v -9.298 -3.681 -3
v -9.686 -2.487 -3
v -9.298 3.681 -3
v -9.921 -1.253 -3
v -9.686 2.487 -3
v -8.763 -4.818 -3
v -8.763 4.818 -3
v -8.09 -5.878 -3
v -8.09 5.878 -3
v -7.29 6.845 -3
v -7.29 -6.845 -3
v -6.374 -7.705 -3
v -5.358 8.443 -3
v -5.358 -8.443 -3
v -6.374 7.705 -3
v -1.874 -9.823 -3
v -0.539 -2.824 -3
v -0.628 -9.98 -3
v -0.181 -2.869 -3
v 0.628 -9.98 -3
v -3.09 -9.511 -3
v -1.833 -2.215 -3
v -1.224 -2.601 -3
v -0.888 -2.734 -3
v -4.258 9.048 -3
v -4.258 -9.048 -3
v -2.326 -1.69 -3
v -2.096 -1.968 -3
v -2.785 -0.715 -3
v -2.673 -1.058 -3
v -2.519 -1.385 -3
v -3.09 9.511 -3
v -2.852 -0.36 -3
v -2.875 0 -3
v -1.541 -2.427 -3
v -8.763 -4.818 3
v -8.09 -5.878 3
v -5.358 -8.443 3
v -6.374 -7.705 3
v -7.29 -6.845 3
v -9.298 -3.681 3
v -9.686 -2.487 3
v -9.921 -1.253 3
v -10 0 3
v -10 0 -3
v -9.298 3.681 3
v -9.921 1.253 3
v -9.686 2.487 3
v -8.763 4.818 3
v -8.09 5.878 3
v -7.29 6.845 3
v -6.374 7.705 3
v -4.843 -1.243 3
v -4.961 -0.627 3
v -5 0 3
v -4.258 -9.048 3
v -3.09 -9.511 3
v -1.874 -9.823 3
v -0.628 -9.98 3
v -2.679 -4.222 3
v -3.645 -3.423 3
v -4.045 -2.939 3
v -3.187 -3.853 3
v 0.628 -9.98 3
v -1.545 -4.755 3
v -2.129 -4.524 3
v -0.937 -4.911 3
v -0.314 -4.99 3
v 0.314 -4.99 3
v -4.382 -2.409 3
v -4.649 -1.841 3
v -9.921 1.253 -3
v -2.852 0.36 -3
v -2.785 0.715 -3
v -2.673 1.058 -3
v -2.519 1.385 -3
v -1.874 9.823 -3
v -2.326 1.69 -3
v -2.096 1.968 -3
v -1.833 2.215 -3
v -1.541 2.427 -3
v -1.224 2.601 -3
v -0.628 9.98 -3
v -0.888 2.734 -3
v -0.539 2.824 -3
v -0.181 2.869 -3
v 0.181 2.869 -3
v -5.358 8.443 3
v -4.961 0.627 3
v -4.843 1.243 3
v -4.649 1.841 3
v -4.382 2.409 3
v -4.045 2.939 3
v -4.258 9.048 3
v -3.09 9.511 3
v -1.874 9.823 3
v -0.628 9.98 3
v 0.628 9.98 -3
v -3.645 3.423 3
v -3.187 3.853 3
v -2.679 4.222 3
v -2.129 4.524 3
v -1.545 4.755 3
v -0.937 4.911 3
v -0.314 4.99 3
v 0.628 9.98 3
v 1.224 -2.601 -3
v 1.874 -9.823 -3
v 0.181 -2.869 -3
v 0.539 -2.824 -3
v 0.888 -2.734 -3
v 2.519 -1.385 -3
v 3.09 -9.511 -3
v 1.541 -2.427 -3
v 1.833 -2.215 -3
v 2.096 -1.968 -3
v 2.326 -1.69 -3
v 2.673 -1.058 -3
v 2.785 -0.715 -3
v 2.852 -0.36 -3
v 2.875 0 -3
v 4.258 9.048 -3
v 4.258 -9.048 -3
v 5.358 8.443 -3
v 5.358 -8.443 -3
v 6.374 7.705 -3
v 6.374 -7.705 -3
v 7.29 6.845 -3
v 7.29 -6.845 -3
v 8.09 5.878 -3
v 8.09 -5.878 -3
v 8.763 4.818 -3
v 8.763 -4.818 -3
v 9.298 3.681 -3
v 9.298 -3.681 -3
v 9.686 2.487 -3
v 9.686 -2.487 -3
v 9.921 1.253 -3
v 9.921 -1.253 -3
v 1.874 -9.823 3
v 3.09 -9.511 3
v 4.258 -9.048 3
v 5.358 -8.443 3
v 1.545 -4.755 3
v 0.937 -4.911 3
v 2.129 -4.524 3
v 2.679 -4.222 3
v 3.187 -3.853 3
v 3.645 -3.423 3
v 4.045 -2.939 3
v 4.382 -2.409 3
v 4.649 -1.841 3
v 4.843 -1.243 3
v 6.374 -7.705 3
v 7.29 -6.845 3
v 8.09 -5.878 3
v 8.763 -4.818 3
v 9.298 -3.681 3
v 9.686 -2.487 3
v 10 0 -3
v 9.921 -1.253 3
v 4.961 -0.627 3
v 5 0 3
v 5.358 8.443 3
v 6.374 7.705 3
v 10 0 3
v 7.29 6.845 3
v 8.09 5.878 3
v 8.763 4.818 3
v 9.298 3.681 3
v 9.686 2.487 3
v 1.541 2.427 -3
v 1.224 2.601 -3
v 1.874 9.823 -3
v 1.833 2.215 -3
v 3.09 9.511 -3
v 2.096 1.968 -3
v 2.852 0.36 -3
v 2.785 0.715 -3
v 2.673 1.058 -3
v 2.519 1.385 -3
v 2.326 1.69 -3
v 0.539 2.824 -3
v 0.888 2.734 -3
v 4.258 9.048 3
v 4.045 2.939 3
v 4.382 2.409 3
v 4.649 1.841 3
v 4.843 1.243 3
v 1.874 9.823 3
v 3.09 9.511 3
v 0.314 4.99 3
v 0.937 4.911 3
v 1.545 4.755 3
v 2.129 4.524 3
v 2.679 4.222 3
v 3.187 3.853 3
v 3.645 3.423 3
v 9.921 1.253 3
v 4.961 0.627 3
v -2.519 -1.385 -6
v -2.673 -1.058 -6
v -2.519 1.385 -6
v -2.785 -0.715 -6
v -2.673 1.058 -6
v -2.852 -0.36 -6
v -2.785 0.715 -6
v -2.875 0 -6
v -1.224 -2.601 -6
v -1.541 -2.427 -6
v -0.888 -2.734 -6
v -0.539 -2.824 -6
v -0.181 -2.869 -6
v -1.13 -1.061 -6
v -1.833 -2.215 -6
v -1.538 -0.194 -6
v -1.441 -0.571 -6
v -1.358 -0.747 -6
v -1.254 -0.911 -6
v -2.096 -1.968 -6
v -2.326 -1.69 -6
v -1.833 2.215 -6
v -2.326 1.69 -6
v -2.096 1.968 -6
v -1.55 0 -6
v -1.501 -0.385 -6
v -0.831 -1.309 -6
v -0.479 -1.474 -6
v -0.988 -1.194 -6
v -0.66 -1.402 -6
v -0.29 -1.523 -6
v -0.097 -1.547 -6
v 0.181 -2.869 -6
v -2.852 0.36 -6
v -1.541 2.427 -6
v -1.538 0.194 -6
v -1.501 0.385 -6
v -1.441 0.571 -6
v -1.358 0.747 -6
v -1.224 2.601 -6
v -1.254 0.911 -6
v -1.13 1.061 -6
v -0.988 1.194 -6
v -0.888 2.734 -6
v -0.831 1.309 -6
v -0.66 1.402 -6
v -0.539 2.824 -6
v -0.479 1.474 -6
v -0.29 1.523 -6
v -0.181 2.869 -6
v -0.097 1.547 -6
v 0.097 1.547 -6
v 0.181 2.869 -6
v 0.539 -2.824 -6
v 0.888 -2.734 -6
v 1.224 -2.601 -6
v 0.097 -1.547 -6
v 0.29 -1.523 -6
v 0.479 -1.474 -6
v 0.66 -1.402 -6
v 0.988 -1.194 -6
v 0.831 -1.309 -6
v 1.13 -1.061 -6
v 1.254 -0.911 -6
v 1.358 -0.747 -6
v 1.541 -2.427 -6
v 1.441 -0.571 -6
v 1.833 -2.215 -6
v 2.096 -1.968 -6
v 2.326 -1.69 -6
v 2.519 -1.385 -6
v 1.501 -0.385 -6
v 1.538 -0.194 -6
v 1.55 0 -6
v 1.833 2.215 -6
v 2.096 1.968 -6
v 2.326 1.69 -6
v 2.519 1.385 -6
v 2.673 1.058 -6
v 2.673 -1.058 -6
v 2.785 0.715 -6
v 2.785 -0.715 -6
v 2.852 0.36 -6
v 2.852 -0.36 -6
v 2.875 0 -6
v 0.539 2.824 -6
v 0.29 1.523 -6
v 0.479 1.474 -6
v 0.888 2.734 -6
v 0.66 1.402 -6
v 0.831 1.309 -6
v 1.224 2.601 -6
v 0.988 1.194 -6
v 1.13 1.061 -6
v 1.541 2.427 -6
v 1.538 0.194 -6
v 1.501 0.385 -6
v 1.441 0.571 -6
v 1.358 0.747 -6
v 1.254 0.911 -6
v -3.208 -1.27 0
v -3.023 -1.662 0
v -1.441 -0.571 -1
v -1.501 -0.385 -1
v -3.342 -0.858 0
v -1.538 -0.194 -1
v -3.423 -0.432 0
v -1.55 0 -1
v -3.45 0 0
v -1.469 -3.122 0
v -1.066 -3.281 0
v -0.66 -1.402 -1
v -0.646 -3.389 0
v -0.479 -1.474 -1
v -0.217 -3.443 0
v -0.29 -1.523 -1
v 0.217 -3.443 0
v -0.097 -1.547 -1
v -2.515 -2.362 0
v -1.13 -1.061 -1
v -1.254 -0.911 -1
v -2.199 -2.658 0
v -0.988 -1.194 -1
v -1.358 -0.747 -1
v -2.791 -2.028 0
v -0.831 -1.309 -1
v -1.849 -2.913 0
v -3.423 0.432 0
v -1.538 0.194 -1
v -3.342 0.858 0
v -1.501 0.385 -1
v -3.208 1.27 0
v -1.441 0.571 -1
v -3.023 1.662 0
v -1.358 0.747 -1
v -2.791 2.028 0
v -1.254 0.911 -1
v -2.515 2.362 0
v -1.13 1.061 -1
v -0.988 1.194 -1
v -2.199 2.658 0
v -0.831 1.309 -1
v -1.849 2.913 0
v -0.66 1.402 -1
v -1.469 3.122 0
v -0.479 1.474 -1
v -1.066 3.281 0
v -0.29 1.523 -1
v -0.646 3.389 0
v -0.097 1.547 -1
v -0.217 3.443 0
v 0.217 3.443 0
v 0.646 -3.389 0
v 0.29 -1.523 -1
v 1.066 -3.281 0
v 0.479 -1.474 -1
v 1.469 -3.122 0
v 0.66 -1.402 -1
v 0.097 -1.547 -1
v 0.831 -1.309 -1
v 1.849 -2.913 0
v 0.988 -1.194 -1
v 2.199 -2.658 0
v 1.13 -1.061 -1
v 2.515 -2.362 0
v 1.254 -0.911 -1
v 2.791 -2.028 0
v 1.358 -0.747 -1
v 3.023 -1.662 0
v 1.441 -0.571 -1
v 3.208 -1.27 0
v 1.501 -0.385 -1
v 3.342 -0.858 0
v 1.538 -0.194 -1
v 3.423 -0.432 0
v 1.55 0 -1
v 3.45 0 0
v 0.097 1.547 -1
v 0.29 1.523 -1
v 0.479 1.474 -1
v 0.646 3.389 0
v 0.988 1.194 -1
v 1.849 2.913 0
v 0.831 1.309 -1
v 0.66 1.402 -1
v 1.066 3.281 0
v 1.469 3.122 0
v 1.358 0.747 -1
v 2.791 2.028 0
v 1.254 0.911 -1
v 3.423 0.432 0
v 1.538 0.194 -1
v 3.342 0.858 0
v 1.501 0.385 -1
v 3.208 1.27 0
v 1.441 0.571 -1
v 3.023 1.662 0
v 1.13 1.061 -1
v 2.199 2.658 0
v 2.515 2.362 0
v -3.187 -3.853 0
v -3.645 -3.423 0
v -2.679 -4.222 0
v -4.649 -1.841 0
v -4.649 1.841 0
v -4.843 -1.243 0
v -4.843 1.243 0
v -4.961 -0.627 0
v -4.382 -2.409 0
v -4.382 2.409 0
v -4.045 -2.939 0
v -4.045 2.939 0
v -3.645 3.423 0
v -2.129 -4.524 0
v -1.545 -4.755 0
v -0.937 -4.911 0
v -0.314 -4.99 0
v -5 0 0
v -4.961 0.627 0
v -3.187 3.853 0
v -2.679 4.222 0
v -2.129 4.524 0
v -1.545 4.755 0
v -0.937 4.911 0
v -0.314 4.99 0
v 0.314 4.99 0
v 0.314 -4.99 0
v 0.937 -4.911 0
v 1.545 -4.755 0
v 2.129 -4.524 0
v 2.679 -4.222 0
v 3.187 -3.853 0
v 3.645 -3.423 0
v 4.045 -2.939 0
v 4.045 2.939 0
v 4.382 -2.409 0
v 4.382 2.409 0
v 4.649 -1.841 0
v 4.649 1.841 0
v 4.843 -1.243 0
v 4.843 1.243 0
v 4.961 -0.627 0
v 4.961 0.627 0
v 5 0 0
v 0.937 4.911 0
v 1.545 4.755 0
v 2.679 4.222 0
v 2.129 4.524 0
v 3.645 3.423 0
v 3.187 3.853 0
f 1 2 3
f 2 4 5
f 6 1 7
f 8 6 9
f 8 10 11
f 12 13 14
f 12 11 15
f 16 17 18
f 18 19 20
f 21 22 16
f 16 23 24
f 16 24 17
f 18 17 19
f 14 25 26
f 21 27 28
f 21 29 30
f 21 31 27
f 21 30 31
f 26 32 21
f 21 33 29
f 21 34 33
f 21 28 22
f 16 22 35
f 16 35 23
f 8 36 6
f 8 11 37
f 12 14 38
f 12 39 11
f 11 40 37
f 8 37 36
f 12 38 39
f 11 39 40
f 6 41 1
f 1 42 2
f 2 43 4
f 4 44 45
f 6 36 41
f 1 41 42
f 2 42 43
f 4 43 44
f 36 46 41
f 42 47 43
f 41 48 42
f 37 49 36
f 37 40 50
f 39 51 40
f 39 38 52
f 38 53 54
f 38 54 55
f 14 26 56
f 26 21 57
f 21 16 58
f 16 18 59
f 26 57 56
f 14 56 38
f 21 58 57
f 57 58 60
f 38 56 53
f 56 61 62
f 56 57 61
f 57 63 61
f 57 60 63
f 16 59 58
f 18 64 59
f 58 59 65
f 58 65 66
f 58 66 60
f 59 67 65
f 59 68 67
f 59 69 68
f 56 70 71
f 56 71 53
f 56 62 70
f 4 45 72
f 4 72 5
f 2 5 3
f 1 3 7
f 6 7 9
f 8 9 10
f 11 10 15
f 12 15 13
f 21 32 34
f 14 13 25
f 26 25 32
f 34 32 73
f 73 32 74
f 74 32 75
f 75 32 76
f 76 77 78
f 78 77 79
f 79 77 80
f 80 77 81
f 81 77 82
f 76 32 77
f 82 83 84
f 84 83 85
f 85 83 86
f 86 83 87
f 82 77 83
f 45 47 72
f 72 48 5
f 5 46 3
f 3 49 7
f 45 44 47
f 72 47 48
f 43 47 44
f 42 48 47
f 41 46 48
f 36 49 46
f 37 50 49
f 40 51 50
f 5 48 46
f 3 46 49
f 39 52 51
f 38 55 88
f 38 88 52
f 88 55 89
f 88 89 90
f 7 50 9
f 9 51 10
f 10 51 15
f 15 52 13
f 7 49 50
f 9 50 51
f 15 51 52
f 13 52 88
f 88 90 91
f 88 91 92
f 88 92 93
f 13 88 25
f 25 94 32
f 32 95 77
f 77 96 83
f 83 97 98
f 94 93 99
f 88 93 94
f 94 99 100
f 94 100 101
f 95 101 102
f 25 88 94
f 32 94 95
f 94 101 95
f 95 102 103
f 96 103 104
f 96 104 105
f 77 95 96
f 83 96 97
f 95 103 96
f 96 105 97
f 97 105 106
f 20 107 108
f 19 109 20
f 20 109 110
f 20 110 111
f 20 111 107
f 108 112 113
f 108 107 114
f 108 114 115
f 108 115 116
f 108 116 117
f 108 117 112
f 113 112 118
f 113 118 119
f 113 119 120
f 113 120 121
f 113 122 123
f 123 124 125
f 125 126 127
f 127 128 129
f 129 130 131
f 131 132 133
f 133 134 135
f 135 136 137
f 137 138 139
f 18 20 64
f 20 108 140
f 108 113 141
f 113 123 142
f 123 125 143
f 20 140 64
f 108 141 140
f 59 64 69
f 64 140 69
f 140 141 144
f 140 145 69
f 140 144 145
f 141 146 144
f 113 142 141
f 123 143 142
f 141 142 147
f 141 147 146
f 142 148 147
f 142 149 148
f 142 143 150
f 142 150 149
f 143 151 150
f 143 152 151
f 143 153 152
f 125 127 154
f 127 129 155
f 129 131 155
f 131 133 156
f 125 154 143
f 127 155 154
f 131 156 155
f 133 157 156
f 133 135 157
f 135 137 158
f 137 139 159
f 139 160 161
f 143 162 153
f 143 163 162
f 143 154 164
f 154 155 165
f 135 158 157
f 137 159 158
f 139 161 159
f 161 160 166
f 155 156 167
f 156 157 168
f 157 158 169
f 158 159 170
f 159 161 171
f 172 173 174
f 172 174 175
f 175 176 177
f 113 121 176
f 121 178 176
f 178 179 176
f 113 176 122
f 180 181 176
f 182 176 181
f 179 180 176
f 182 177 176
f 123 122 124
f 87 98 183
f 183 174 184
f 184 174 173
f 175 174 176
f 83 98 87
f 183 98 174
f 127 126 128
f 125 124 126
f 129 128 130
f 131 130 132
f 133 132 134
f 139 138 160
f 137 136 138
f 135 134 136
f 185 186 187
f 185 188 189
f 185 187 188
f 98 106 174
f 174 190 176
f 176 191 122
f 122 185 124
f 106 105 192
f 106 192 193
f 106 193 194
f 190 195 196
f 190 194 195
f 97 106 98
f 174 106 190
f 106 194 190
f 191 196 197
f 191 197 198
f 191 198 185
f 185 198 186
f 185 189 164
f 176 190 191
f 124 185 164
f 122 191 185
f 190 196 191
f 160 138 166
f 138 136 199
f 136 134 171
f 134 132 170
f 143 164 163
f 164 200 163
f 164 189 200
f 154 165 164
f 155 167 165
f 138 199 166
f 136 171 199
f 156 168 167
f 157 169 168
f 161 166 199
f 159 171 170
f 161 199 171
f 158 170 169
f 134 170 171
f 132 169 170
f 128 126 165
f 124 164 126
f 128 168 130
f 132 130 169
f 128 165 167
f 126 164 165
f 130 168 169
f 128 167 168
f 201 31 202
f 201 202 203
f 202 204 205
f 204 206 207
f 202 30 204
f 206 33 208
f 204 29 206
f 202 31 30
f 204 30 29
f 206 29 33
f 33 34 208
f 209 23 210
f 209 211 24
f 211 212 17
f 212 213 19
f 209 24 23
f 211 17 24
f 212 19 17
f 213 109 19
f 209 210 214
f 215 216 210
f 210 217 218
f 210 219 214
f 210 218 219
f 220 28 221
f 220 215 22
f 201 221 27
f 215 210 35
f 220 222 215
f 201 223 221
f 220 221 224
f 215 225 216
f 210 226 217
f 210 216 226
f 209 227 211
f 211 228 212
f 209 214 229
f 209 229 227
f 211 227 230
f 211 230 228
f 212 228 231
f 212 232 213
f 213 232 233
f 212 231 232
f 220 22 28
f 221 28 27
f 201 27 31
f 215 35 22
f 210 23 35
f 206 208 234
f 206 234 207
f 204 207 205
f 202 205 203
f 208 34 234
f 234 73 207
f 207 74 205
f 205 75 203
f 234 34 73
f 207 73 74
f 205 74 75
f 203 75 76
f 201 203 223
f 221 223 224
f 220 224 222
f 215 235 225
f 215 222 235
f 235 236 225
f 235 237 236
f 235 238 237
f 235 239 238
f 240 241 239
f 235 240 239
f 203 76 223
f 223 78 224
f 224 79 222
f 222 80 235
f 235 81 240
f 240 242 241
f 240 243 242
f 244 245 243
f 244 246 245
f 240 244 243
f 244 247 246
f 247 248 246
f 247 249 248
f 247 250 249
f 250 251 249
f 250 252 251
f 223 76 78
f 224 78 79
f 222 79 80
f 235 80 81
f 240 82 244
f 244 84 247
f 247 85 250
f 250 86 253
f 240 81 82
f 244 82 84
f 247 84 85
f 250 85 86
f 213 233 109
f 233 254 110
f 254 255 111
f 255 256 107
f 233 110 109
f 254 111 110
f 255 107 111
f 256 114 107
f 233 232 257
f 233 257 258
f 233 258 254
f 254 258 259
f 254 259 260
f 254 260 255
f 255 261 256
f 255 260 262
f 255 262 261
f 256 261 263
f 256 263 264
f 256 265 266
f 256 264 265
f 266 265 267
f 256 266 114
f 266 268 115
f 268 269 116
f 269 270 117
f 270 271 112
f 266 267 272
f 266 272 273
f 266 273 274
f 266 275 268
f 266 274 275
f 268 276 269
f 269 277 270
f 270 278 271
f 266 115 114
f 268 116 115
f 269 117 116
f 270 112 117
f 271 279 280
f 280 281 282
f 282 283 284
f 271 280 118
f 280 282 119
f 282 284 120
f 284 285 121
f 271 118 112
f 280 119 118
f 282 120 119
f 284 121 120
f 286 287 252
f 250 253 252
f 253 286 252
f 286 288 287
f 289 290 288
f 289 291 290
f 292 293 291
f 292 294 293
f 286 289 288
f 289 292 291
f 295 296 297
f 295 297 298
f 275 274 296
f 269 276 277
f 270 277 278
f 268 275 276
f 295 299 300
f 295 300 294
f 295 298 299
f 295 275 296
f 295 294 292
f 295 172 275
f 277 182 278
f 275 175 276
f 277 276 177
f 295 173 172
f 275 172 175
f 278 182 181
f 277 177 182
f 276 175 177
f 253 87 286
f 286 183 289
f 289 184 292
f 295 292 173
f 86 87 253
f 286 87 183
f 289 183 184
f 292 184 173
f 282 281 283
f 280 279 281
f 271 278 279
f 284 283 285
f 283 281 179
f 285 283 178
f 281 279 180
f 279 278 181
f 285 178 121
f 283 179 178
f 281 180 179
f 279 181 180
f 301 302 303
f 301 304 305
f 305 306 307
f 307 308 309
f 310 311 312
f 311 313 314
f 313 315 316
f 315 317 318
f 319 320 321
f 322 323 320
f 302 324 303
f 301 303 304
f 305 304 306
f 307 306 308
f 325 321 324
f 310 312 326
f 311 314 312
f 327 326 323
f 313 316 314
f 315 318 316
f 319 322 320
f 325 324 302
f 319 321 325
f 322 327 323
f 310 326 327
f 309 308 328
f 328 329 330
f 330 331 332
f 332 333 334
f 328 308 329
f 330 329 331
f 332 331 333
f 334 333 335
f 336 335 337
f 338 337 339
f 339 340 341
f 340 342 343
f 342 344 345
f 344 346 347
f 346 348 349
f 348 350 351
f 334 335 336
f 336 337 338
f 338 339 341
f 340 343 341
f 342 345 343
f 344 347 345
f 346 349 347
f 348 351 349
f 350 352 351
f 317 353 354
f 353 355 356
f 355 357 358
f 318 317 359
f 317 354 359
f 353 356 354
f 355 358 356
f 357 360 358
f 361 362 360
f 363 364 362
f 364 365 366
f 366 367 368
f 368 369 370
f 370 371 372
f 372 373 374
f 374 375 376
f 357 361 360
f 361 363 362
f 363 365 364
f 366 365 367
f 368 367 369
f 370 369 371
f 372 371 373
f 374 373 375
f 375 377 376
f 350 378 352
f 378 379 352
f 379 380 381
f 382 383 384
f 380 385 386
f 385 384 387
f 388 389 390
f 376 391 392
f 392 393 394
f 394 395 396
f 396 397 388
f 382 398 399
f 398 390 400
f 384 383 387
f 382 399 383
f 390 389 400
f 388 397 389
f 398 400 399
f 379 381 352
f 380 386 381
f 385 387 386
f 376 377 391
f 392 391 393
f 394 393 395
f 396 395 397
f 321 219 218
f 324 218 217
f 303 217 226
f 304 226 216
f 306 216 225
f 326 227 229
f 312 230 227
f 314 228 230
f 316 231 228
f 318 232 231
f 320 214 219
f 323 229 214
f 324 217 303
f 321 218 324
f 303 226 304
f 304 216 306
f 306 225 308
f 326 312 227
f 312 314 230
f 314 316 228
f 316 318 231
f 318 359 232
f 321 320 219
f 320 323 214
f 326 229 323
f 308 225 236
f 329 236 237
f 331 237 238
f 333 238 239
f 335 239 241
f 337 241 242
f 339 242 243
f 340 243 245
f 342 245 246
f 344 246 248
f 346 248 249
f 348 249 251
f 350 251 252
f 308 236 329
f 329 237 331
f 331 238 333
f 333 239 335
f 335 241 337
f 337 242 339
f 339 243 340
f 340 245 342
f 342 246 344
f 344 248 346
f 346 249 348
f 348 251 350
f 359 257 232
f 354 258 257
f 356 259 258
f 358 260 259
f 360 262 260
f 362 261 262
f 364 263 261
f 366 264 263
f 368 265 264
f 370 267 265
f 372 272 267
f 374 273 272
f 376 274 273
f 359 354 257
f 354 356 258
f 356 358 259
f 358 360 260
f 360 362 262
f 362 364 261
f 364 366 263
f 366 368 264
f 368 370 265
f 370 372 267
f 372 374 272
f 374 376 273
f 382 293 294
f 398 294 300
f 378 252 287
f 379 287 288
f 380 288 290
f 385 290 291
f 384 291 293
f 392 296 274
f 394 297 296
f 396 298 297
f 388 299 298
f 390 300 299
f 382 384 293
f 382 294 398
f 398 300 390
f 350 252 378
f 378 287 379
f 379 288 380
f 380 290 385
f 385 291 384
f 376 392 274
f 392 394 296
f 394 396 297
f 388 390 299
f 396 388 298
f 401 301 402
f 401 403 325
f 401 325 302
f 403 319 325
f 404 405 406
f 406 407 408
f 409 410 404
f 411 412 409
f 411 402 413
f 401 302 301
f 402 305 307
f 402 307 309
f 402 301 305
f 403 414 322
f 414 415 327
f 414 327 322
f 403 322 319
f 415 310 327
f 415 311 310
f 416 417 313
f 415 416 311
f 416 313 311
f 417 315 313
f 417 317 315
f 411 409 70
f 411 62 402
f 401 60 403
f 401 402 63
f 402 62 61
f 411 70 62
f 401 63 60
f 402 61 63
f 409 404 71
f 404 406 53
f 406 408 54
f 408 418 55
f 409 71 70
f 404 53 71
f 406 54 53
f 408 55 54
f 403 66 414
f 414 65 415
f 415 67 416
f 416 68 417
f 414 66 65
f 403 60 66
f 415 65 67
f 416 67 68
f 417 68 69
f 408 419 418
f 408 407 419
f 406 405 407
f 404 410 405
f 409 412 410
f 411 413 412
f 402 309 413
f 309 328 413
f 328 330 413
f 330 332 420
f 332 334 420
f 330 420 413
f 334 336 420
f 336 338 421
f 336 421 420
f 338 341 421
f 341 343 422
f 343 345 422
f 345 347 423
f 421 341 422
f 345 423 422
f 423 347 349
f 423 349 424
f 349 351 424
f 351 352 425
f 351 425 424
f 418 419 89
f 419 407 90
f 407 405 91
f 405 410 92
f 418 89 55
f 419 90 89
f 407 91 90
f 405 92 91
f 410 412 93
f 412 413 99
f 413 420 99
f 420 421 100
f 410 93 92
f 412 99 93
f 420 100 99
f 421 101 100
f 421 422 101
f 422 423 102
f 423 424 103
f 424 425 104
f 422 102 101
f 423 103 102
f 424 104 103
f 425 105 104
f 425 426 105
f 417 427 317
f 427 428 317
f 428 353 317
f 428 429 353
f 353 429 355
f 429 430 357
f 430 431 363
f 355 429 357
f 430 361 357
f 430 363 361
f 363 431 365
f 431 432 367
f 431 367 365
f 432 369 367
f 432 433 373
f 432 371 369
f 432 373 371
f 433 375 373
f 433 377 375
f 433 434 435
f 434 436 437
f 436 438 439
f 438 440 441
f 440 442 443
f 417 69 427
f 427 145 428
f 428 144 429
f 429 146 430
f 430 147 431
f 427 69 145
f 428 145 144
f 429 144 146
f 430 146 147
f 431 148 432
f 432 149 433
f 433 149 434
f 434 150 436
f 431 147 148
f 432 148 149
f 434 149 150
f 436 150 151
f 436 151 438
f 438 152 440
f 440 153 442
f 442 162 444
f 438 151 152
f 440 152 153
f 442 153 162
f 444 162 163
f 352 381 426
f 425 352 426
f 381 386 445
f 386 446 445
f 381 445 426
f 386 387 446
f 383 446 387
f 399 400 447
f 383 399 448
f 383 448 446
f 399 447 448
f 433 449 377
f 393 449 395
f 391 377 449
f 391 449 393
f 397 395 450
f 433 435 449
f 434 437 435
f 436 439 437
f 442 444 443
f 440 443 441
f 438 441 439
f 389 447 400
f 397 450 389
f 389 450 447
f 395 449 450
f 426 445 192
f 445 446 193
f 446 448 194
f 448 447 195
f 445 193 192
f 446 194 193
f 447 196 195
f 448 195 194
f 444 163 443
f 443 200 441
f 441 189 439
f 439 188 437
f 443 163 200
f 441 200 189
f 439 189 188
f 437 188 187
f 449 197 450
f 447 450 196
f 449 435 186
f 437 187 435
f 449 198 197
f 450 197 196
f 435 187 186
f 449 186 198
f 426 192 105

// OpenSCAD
$fn = 50;

difference() {
	union() {
		translate(v = [0, 0, -3.0]) {
			cylinder(h = 6, r = 10.0);
		}
		#translate(v = [0, 0, -6.0]) {
			cylinder(h = 6, r = 2.875);
		}
	}
	union() {
		translate(v = [0, 0, 0]) {
			rotate(a = [0, 0, 0]) {
				difference() {
					union() {
						translate(v = [0, 0, -6.0]) {
							cylinder(h = 6, r = 1.25);
						}
						translate(v = [0, 0, -1.0]) {
							cylinder(h = 1.0, r1 = 1.55, r2 = 3.45);
						}
						translate(v = [0, 0, -6.0]) {
							cylinder(h = 6, r = 1.55);
						}
						translate(v = [0, 0, -6.0]) {
							cylinder(h = 6, r = 1.25);
						}
					}
					union();
				}
			}
		}
		#cylinder(h = 3, r = 5.0);
	}
}
